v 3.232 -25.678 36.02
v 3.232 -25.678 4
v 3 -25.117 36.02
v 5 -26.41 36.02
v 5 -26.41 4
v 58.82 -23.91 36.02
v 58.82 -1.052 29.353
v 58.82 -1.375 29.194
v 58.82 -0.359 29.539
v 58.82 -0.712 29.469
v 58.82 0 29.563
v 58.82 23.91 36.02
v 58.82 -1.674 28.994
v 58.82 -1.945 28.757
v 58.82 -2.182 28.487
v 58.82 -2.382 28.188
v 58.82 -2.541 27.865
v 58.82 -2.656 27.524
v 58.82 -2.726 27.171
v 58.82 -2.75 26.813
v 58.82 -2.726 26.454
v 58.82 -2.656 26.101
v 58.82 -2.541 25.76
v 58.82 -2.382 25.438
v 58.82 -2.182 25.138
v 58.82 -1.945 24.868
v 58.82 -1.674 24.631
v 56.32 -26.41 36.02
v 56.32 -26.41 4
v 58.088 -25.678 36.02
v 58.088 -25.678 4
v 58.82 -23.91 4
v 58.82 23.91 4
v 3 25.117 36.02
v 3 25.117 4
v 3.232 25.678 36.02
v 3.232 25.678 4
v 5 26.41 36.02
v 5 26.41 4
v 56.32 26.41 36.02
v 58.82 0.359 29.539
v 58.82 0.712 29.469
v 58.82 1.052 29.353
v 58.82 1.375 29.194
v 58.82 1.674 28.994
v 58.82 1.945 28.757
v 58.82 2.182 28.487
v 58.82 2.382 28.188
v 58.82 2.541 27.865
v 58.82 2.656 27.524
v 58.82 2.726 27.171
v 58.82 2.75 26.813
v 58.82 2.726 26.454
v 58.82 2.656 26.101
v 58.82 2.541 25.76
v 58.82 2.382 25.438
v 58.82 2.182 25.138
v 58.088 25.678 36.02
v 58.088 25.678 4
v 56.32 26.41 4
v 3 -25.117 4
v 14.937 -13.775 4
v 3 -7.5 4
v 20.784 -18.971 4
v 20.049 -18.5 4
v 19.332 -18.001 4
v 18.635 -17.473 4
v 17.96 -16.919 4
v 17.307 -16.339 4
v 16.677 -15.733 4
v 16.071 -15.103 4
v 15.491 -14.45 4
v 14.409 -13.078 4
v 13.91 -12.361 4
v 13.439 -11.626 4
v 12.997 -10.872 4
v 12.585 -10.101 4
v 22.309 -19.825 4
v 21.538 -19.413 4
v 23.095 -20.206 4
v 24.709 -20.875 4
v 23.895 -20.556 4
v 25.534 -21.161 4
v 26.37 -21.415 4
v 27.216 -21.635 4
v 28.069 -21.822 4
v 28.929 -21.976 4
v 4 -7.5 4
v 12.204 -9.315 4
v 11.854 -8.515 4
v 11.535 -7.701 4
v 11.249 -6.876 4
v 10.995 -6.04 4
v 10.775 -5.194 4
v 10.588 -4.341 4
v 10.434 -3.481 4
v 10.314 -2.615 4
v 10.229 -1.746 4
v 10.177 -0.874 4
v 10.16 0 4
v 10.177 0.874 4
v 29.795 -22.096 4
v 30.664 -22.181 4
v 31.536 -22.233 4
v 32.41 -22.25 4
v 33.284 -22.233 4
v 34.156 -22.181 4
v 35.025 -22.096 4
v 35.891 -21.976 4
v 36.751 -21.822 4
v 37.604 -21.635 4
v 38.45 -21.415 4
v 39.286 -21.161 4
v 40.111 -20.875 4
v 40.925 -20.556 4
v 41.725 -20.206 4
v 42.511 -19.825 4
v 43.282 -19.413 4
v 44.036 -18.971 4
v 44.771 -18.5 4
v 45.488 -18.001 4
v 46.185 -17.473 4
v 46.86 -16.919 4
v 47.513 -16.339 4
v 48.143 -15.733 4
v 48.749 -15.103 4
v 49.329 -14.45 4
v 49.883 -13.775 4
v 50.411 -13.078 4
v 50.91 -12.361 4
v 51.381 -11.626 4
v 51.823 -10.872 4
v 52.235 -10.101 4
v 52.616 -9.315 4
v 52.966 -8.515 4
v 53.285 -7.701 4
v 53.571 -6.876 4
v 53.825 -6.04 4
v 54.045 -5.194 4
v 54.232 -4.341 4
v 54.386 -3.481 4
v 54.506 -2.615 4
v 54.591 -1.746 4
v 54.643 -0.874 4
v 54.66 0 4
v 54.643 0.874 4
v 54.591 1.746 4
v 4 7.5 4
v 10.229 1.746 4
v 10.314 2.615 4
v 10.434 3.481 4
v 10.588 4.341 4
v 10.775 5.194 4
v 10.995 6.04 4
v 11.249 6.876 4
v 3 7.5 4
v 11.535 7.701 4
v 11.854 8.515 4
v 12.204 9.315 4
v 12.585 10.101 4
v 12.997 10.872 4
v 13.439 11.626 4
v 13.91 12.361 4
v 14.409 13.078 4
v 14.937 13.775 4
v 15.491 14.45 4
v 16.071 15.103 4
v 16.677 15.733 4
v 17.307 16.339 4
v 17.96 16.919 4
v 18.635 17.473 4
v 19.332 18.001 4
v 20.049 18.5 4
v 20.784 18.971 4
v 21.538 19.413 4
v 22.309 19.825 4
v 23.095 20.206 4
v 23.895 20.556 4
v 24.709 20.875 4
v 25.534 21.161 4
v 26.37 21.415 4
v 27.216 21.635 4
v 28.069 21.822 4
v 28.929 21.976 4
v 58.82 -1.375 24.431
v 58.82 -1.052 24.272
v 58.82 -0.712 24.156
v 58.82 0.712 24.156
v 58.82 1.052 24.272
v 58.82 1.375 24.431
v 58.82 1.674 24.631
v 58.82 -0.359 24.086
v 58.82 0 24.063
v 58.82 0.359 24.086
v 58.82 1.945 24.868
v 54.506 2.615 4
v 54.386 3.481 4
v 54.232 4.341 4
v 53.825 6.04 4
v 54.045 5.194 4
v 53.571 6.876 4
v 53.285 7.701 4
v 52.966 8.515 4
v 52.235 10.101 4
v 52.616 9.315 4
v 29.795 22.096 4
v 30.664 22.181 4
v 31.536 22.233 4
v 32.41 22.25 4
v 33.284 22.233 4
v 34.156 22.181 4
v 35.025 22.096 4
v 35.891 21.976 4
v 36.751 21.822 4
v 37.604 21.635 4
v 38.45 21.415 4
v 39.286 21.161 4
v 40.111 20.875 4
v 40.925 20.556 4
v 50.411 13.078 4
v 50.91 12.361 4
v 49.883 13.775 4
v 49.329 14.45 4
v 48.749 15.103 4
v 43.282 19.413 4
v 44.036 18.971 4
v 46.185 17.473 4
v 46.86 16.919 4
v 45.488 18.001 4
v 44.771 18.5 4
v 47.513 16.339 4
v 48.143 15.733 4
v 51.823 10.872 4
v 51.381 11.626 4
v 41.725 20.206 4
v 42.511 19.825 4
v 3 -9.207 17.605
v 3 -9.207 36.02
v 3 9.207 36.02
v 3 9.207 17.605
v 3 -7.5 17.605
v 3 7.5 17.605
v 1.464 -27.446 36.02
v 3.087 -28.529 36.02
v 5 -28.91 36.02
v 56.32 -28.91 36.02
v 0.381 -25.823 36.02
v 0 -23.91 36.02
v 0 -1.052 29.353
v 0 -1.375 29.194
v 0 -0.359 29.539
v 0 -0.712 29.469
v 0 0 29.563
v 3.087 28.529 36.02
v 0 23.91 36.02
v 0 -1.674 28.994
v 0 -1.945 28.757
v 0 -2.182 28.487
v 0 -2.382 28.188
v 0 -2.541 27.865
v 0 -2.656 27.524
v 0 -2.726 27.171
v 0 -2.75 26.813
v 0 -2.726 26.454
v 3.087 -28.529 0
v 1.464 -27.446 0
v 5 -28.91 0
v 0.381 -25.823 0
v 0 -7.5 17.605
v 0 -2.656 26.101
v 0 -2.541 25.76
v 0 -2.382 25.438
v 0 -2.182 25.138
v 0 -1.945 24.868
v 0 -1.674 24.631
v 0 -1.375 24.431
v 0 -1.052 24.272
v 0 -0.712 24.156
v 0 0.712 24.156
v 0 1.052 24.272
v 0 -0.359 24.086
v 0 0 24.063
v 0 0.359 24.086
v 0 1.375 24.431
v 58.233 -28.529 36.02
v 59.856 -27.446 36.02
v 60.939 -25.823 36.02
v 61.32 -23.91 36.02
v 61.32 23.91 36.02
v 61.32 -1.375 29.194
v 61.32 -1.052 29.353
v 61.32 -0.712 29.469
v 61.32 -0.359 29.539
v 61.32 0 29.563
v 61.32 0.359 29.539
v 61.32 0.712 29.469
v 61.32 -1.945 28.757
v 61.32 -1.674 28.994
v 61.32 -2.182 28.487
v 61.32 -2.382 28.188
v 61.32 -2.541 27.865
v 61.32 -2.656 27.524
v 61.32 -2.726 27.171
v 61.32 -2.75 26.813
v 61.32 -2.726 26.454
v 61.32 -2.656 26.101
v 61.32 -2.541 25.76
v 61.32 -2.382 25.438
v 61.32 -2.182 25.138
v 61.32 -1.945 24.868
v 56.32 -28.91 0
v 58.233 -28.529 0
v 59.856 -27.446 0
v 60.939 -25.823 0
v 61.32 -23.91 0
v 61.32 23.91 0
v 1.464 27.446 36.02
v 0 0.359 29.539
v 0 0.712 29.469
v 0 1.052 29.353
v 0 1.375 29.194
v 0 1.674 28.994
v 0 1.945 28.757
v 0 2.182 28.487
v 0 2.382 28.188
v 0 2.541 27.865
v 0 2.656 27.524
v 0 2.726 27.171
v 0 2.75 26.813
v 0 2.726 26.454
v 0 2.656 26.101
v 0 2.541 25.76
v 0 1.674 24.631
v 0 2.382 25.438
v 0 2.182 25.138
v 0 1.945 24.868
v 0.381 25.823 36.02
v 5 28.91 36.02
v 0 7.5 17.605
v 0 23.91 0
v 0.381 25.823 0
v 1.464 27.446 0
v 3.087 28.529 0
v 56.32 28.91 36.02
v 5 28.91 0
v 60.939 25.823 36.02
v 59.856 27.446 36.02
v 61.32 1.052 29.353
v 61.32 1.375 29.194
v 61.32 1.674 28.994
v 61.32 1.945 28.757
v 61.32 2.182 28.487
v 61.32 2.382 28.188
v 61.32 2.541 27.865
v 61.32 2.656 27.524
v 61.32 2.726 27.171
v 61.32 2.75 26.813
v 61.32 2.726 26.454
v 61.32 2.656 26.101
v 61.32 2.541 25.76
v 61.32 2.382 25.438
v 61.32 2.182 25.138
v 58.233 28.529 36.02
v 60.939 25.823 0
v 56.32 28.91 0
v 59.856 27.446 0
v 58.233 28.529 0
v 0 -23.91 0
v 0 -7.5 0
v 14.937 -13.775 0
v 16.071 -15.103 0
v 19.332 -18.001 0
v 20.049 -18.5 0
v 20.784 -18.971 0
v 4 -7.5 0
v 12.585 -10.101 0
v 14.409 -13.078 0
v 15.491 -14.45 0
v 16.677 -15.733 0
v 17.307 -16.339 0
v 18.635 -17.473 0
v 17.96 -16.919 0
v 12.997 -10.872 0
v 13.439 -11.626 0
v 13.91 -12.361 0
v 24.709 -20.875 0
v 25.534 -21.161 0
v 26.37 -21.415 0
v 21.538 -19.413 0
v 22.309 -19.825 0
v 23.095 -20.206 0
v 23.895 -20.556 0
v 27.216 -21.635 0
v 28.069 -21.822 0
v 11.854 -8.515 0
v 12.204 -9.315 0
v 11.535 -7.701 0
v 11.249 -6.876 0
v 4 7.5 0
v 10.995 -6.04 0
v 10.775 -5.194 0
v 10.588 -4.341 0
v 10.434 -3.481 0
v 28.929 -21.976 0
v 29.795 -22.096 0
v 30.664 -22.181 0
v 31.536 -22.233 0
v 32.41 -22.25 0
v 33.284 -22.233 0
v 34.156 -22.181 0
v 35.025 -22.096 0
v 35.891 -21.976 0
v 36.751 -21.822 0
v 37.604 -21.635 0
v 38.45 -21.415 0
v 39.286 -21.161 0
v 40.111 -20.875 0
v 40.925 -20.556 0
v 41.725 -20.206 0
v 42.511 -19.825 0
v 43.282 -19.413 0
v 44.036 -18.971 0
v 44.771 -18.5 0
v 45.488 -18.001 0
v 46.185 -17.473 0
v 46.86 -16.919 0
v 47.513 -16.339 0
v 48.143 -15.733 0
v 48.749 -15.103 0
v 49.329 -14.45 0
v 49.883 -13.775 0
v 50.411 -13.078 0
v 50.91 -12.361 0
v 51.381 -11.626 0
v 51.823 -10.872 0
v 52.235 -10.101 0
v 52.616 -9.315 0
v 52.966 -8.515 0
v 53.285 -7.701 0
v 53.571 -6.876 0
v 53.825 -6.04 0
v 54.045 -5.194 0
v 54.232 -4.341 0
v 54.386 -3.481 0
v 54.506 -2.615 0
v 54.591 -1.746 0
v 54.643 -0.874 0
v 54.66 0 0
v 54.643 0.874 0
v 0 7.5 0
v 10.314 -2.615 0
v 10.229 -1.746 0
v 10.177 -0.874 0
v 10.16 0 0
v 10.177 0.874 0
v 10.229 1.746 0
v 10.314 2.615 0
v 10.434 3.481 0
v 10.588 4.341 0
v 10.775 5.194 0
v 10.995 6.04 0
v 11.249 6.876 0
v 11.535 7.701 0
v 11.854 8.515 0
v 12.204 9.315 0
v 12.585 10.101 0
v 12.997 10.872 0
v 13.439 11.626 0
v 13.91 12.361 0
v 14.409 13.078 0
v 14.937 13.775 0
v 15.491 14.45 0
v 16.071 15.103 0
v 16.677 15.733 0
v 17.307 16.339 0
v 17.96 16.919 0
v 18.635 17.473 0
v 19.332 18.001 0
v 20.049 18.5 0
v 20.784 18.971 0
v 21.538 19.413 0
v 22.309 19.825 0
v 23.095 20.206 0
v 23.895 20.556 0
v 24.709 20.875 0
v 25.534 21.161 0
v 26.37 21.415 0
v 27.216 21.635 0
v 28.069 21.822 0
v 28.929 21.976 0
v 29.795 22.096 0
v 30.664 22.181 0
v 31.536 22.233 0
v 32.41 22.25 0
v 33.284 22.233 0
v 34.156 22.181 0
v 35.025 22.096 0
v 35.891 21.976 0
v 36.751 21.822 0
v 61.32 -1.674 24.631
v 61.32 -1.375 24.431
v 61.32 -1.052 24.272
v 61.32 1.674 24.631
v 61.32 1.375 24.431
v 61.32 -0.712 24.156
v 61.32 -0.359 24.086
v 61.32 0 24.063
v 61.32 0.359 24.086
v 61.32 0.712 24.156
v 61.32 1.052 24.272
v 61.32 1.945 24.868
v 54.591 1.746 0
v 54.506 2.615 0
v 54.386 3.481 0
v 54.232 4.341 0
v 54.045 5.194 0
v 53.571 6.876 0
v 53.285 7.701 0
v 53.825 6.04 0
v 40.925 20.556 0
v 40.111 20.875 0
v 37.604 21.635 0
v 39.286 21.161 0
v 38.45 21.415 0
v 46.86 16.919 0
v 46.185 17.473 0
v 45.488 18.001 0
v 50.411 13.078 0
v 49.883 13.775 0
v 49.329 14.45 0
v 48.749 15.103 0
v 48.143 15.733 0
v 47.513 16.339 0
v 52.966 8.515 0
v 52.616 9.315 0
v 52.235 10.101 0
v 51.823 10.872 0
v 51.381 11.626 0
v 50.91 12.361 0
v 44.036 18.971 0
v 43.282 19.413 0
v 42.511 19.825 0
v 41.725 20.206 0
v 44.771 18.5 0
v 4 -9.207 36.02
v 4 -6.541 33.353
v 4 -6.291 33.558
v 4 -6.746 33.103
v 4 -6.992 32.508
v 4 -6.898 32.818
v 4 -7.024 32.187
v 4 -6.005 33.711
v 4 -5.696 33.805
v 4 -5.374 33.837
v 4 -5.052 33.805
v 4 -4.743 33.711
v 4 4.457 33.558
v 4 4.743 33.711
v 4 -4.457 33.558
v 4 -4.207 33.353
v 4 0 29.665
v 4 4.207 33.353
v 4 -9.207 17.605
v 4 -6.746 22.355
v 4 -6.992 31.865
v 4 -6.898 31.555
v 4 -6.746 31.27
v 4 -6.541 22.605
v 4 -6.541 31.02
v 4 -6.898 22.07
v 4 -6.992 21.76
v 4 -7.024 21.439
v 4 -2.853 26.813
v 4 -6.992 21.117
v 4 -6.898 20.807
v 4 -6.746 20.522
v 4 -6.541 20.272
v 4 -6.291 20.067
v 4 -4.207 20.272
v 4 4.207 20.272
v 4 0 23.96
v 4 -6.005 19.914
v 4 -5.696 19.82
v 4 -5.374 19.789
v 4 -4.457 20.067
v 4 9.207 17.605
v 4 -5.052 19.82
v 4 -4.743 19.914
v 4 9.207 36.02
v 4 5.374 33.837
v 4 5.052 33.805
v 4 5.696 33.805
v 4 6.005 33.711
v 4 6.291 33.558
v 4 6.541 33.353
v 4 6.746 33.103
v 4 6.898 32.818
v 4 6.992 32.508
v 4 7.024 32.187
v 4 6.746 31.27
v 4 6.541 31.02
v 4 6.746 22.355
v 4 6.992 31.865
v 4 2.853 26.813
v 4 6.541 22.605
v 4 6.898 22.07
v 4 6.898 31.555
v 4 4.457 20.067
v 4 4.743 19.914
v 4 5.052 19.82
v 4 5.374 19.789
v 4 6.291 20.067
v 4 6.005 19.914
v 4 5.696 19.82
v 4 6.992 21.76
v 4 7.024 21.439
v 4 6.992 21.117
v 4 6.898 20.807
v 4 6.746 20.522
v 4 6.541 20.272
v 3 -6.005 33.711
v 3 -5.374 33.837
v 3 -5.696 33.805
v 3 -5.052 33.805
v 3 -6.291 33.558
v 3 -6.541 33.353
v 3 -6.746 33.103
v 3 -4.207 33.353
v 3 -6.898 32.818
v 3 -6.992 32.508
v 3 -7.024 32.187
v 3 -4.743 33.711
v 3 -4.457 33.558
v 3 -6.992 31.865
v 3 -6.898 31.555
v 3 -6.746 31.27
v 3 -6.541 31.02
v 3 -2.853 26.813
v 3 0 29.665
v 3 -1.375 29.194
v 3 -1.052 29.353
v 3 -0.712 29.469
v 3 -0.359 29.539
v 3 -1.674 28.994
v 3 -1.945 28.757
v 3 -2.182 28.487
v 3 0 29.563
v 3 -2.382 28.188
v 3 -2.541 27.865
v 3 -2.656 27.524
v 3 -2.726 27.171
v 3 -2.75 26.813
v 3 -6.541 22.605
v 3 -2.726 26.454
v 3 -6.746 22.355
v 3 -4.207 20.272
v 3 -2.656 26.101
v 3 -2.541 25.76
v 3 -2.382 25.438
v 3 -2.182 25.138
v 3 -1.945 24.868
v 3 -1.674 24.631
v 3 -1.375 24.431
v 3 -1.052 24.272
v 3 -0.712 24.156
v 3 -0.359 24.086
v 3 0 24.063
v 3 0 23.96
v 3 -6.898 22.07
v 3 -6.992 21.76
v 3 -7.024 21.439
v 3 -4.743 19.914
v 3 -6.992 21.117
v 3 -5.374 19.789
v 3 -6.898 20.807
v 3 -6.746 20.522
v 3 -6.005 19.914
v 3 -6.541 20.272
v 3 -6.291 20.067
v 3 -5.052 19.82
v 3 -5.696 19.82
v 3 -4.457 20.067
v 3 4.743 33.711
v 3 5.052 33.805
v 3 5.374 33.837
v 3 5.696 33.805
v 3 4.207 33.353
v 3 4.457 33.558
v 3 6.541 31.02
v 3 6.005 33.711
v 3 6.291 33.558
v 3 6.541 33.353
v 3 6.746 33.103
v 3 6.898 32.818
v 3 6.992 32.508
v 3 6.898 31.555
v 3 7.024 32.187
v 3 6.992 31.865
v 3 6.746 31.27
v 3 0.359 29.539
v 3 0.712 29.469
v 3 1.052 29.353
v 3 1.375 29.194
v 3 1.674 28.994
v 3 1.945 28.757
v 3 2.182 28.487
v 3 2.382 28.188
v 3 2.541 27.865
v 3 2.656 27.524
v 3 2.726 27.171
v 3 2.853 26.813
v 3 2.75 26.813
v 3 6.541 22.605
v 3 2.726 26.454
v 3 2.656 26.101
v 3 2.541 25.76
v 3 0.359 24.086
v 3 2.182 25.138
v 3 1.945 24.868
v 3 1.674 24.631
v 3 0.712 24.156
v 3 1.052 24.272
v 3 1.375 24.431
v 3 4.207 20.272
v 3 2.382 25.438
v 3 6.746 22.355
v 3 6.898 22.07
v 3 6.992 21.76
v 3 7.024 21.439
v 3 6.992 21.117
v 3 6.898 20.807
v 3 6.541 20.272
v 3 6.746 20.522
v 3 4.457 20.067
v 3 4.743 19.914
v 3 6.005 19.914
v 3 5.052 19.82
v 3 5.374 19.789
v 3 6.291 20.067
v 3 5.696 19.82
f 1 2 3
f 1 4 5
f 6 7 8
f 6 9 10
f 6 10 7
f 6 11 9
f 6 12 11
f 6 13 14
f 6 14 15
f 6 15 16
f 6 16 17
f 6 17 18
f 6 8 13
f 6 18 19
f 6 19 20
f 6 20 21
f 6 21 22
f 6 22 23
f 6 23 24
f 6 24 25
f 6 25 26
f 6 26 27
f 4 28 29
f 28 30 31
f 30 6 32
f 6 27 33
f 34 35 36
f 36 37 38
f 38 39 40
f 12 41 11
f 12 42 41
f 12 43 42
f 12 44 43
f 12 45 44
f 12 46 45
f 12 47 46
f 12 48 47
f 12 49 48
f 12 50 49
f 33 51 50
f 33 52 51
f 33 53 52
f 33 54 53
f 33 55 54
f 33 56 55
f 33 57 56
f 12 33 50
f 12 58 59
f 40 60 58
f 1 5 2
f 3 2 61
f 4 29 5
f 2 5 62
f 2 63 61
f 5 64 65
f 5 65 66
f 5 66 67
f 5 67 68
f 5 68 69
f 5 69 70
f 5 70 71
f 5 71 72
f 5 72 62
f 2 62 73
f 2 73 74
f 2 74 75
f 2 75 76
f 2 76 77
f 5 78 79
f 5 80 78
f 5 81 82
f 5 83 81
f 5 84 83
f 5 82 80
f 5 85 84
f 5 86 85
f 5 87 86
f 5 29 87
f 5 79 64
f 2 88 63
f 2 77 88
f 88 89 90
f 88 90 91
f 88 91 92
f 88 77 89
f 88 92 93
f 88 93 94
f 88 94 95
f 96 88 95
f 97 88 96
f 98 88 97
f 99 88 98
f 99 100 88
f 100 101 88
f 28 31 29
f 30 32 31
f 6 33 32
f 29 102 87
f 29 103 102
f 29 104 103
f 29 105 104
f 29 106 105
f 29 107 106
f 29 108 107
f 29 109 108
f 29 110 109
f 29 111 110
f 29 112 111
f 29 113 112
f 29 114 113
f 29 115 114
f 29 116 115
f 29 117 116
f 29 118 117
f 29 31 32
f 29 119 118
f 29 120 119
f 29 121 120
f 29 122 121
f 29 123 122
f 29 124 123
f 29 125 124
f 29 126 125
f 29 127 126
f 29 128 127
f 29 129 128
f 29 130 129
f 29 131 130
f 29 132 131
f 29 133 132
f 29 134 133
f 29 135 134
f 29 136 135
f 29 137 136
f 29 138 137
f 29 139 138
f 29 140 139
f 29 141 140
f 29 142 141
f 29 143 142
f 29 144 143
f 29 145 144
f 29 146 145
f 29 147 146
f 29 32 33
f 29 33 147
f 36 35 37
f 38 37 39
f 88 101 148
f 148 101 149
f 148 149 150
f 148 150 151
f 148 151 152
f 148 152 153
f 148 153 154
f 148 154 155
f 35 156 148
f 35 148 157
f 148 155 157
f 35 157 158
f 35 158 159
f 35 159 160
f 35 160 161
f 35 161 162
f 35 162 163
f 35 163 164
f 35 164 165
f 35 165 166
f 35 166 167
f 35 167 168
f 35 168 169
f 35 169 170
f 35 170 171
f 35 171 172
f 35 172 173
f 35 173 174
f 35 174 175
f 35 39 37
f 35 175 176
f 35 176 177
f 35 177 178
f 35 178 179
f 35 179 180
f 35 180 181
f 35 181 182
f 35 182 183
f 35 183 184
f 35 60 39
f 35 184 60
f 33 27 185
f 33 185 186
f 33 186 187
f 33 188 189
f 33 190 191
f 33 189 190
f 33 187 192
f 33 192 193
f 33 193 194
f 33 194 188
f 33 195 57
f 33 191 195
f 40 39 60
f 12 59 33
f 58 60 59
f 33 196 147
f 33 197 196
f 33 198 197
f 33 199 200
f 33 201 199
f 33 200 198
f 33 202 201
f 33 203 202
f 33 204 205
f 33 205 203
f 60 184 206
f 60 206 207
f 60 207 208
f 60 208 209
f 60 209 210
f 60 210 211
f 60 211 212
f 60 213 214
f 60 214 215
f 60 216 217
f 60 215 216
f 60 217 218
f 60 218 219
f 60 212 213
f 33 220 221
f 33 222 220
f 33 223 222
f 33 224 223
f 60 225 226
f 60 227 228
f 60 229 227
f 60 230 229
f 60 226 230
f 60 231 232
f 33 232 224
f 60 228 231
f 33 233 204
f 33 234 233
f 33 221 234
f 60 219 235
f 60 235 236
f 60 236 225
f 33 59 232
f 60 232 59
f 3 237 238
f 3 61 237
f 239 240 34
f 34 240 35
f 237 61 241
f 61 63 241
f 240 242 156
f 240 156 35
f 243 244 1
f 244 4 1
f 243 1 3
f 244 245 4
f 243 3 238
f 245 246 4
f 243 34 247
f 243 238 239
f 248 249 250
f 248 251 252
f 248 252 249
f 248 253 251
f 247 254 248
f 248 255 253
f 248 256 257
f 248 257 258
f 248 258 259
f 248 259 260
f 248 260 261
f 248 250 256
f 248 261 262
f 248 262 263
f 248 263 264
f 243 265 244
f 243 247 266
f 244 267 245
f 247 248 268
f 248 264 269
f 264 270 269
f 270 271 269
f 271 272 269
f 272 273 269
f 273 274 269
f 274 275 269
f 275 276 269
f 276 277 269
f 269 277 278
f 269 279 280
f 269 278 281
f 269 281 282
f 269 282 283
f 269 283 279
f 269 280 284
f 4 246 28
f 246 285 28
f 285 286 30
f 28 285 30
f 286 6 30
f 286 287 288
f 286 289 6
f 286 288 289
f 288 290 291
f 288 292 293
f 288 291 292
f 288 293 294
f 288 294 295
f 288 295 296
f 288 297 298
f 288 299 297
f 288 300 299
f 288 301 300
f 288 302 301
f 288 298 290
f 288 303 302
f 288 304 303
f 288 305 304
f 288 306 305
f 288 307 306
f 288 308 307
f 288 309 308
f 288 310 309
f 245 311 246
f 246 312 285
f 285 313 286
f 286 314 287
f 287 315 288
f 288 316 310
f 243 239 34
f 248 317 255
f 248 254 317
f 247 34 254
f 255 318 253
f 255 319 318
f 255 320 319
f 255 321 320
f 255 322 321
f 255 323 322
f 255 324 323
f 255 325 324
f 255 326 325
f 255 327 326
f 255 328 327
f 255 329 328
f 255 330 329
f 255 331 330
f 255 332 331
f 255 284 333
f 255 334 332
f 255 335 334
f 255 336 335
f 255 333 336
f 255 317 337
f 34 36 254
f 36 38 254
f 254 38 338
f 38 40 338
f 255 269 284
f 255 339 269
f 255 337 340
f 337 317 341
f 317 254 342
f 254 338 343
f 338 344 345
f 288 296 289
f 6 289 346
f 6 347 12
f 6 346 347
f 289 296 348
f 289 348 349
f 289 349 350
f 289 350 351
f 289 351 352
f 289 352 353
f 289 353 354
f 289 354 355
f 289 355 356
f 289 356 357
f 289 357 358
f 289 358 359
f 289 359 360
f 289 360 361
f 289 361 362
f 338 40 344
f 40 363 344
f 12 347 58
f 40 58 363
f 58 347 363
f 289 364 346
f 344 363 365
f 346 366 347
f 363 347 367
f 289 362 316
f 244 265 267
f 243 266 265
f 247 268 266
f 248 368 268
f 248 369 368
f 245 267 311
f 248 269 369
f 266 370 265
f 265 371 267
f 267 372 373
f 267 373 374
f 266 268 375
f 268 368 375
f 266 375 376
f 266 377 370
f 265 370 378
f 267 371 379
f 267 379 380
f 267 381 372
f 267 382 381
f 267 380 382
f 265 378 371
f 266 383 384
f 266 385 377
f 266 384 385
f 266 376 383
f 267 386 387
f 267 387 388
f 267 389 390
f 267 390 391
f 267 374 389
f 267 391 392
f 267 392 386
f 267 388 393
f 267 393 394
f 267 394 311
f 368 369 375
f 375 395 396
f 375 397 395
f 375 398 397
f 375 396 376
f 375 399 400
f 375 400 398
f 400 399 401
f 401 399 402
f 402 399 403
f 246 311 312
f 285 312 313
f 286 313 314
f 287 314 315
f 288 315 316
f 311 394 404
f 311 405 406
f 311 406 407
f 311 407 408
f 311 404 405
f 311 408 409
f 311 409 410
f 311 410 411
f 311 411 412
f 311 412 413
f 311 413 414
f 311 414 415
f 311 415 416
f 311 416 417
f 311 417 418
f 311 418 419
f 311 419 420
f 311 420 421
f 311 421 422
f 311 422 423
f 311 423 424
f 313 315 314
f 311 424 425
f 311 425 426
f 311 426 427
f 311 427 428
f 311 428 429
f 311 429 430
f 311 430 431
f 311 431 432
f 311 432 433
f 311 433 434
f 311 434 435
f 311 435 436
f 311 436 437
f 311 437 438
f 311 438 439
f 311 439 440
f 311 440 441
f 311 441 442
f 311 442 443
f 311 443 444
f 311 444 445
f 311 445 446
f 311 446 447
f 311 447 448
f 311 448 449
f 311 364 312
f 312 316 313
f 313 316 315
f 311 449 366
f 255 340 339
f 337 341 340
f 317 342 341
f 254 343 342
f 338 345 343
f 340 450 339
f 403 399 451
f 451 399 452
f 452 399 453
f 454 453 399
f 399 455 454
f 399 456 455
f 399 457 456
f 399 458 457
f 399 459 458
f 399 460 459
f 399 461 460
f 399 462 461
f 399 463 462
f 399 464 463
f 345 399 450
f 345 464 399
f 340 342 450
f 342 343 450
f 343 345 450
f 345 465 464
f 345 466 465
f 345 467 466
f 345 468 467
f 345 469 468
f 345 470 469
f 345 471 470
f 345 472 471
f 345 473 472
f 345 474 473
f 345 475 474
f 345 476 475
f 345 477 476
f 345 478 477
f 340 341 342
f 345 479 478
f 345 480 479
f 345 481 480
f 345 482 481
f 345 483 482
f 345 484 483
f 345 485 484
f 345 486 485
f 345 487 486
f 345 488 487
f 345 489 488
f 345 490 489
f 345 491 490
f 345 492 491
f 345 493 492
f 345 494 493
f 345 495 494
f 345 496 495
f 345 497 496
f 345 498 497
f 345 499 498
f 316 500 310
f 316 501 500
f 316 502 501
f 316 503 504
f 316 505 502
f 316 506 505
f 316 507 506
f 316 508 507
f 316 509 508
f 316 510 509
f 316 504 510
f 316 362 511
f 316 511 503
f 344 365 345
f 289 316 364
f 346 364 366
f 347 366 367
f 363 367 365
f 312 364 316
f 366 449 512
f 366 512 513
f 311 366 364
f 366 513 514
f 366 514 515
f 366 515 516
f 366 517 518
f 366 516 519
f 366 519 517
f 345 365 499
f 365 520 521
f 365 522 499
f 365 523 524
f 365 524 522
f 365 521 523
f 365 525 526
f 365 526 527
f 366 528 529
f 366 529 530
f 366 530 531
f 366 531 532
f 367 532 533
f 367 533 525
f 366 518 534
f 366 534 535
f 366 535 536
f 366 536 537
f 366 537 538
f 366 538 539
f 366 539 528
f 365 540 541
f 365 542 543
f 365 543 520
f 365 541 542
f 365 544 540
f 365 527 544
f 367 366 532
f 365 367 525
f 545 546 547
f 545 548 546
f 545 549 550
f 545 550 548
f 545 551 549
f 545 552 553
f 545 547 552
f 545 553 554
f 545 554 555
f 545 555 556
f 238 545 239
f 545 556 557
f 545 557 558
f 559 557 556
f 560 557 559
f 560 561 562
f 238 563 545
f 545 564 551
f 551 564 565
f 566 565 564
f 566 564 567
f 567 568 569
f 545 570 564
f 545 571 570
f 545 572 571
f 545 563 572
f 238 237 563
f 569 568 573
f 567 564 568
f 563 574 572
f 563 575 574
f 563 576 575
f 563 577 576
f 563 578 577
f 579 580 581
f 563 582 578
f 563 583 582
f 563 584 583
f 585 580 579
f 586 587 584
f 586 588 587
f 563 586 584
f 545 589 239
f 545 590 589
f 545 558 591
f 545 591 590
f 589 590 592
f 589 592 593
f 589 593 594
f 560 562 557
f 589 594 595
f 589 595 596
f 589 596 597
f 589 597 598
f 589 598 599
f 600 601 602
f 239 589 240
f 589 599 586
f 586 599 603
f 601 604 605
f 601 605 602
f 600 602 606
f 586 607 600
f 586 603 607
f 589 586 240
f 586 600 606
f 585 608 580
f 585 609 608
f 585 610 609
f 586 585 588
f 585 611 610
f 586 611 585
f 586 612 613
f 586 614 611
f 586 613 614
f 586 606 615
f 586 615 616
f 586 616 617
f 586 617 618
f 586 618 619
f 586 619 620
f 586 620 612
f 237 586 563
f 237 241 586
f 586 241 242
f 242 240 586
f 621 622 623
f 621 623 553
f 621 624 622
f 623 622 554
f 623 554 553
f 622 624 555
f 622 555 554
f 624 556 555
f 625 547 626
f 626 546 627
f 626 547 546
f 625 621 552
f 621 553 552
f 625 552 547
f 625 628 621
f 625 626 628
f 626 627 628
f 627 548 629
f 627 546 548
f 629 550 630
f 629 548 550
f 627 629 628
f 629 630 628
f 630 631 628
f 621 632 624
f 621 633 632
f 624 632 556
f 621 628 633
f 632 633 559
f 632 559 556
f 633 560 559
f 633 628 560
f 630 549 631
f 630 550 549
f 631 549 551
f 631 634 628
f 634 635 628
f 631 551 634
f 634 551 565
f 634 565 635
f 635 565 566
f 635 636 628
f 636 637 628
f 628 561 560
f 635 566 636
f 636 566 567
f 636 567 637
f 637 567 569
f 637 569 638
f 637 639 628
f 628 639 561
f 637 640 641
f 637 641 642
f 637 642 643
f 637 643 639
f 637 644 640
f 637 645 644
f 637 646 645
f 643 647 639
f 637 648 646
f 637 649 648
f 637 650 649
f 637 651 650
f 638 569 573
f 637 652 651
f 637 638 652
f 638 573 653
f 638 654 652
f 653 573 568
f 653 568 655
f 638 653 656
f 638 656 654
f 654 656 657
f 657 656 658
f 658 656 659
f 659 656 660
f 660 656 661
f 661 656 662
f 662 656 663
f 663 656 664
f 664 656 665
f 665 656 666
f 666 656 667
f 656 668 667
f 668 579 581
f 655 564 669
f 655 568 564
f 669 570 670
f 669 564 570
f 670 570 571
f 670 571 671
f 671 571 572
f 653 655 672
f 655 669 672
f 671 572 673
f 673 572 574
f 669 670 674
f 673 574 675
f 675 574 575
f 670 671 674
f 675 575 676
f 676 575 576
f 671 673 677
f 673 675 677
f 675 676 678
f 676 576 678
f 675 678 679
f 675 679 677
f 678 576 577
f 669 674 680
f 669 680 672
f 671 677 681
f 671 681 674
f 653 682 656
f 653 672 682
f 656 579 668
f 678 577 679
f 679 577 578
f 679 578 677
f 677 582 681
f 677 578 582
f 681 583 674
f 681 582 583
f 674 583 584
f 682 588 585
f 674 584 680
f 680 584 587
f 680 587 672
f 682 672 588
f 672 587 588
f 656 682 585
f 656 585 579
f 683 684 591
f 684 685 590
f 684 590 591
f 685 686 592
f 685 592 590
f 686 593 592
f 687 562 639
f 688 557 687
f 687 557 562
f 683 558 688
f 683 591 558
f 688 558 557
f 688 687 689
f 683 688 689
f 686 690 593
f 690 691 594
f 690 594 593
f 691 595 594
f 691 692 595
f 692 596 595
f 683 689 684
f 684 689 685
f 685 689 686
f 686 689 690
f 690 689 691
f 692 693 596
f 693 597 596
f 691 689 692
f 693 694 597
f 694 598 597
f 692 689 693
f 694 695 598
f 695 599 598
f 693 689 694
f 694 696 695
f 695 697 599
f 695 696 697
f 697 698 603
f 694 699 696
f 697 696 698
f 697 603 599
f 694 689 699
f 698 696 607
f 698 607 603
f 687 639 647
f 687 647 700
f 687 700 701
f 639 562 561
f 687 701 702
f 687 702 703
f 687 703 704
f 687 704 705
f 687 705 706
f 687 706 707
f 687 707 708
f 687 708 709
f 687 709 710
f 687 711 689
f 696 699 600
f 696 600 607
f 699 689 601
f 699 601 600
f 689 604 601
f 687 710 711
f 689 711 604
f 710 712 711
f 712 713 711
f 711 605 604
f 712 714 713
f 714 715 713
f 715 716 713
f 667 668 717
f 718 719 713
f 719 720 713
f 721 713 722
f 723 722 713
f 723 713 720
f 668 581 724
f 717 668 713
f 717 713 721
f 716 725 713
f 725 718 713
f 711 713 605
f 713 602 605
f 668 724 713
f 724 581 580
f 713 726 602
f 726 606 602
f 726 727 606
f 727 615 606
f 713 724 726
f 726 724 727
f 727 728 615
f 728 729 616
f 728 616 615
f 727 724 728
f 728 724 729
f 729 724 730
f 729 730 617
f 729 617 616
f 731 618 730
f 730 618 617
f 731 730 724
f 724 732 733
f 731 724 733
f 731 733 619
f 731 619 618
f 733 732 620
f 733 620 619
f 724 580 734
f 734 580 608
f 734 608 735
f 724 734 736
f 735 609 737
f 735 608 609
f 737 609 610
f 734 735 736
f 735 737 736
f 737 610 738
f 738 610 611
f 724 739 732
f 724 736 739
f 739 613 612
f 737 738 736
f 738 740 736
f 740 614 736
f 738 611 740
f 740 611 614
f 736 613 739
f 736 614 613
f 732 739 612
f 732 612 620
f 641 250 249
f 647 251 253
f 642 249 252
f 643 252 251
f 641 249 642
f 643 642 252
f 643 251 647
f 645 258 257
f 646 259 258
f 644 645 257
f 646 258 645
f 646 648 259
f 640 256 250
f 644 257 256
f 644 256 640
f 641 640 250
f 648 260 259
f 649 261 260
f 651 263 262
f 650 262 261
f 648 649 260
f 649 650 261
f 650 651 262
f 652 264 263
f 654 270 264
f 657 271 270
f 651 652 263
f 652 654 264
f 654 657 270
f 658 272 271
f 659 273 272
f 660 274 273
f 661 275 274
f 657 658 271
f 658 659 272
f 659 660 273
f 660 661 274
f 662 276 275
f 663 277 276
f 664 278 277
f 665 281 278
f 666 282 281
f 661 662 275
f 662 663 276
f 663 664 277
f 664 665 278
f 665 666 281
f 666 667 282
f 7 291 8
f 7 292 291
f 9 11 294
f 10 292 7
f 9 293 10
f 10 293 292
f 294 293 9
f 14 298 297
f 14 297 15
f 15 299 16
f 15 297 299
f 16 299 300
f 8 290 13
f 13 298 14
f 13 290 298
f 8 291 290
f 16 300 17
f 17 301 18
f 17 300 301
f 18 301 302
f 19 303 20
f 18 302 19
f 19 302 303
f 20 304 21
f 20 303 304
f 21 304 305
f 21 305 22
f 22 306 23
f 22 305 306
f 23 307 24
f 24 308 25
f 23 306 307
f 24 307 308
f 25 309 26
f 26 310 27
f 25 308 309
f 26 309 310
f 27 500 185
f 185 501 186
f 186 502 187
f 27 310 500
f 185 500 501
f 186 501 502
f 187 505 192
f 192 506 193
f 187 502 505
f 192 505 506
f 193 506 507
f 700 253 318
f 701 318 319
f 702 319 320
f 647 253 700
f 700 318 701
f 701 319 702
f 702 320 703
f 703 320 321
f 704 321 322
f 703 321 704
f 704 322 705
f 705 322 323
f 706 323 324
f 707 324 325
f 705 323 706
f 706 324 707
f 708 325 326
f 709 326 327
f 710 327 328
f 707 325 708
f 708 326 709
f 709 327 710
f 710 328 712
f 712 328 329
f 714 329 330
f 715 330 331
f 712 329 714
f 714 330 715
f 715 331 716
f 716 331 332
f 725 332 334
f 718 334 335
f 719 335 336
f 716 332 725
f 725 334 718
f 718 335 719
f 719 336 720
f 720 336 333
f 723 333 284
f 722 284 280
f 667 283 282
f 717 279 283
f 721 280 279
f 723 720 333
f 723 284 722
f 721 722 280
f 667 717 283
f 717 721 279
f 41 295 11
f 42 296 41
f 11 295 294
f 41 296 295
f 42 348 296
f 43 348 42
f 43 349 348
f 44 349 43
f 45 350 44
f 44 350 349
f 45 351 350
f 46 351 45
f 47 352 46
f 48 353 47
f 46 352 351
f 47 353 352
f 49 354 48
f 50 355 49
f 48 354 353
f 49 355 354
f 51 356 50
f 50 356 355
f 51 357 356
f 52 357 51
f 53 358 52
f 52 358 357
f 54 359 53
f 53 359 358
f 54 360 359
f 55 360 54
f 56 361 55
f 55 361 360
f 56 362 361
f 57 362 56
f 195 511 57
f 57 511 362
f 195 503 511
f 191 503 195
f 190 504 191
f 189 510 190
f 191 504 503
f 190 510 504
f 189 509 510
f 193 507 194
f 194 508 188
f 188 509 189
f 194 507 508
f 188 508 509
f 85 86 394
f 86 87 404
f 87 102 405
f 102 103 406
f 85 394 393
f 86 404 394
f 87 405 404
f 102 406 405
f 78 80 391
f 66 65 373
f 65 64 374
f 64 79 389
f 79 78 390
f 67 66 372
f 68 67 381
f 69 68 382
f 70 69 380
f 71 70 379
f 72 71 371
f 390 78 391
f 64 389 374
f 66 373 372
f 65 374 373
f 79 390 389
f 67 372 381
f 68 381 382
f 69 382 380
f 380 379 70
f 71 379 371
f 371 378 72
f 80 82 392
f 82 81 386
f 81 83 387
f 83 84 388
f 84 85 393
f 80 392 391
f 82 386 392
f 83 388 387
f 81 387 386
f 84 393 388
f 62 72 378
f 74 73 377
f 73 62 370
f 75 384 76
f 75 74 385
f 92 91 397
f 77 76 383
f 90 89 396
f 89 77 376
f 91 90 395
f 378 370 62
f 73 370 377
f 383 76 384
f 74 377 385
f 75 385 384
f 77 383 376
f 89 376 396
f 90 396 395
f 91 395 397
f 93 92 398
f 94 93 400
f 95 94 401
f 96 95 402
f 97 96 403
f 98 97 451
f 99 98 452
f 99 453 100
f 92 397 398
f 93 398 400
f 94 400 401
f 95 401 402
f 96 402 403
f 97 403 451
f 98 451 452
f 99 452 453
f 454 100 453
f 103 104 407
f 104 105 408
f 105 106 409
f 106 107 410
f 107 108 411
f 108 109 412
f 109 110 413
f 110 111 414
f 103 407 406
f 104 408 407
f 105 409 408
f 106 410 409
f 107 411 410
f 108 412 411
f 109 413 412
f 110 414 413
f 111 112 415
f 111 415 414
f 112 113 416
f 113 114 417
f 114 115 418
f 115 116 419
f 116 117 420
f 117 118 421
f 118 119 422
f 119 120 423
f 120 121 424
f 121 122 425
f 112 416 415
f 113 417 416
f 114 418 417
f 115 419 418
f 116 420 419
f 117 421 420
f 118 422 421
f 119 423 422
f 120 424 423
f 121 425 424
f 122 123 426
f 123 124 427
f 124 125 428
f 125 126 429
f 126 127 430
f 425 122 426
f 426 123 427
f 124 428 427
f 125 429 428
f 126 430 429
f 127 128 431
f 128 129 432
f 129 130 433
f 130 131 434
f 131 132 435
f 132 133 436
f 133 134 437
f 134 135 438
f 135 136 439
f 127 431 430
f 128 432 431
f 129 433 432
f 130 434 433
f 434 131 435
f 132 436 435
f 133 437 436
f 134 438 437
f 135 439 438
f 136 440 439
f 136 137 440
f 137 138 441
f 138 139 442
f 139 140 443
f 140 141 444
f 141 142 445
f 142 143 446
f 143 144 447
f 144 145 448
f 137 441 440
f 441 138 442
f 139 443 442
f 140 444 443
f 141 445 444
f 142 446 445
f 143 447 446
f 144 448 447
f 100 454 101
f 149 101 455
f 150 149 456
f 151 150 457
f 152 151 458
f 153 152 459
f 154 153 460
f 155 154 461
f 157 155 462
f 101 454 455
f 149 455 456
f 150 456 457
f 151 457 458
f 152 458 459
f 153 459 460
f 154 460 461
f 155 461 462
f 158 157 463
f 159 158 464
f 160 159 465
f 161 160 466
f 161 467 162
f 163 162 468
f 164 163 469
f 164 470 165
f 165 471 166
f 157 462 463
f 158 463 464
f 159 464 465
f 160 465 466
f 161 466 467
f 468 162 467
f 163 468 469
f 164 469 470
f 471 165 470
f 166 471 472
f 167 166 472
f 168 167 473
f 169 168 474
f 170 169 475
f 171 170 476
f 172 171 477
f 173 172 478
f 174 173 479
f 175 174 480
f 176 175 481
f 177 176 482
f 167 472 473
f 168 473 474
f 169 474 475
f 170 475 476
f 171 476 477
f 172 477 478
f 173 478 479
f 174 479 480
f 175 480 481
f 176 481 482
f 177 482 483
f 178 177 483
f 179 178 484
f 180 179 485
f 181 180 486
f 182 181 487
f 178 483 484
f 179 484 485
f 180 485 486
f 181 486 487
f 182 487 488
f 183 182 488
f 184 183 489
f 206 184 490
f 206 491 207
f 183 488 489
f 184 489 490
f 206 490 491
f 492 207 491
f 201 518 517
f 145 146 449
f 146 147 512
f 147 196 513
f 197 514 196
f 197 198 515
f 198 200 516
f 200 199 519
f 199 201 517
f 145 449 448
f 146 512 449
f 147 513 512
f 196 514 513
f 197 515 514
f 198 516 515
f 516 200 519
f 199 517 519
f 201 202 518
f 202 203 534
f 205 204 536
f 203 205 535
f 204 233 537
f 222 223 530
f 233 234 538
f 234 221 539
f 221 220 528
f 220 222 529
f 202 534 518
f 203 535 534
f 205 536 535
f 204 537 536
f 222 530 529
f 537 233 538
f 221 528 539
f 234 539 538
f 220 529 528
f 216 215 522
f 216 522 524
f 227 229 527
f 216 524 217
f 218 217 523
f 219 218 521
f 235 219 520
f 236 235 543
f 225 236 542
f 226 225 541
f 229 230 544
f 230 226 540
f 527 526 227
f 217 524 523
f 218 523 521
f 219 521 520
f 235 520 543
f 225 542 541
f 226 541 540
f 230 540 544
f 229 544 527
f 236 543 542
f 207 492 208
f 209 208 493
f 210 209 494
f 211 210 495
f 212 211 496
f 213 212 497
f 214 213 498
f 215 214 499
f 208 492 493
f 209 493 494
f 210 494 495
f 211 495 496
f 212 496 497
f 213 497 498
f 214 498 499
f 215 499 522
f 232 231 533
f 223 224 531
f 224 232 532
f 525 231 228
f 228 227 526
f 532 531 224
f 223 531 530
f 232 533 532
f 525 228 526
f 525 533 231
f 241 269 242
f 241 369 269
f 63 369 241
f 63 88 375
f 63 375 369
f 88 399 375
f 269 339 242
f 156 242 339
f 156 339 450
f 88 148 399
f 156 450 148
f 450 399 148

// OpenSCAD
// file: horn_mount.scad
// Mount for the servo's cross horn (the X-shaped arm that comes with the servo).
//
// The horn sits in an X-shaped recess so it can't twist, with a 5.5 mm hole
// in the middle for the horn's hub and the center screw. Small pilot holes
// line up with the holes in the horn's arms, so tiny screws through the horn
// hold the part on.
//
// Fit it once with HornMountTest.stl. If the horn doesn't fit, measure it and
// change the sizes below; every part that includes this file updates.

// ── Horn sizes (mm) ────────────────────────────────────────────────────────
horn_reach    = 9;      // center to the tip of one arm
horn_root_w   = 3.8;    // arm width at the hub
horn_tip_w    = 2.8;    // arm width at the tip
horn_t        = 1.6;    // arm thickness = recess depth
horn_clear    = 0.25;   // gap around the horn
horn_angle    = 45;     // turn of the X (45 = arms point diagonally)
hub_hole_d    = 5.5;    // hole for the horn's hub and the center screw
horn_holes    = [5, 7.5];  // pilot holes: distance from the center along each arm
horn_pilot_d  = 1.0;    // pilot for the horn's small screws
horn_pilot_depth = 5;

// How far the recess reaches along x or y from the center (arms at 45 deg)
horn_extent = (horn_reach + horn_clear) * cos(45) + (horn_tip_w / 2 + horn_clear) * sin(45);

// 2D X shape, centered
module horn_x_2d() {
    rotate(horn_angle)
        for (a = [0, 90, 180, 270]) rotate(a)
            hull() {
                circle(d = horn_root_w + 2 * horn_clear, $fn = 32);
                translate([horn_reach - horn_tip_w / 2, 0])
                    circle(d = horn_tip_w + 2 * horn_clear, $fn = 32);
            }
}

// Cut-out for the horn. The mounting face is at z = 0, material is above it
// (+z). The hub hole runs up hub_len.
module horn_mount_cut(hub_len) {
    translate([0, 0, -1]) linear_extrude(horn_t + 1) horn_x_2d();
    translate([0, 0, -1]) cylinder(d = hub_hole_d, h = hub_len + 1, $fn = 48);
    rotate(horn_angle)
        for (a = [0, 90, 180, 270], r = horn_holes) rotate(a)
            translate([r, 0, -1]) cylinder(d = horn_pilot_d, h = horn_t + horn_pilot_depth + 1, $fn = 16);
}
// main file
// Fixed head with an M5Stack Dial as the robot's face.
//
// Replaces Head, Hat and Neck, and the head (pitch) servo. The head sits
// directly on the neck (yaw) servo. The servo's cross horn lies inside the
// head in an X-shaped pocket in a square pad on top of the floor (like
// HornMountTest; see horn_mount.scad for the horn shape), so the head can't
// twist. The horn's hub points down into a 5.5 mm hole through the floor,
// and the servo shaft comes up into it from below.
//
// The head is a box with an open back. The Dial goes in from the back, screen
// first: its 45 mm front cap rests against the inside of the front plate and
// the screen shows through the 44.5 mm hole. The orange rings sit inside the
// box with 1 mm of air all around, so they can turn. The Dial goes in with its
// USB-C port facing down, and the plug goes up into it through a slot in the
// floor under the front half of the Dial. The slot also opens out the bottom
// of the front plate. The horn sits behind it, at the back of the floor.
//
// Assembly: put the cross horn into the pocket, hub pointing down. Center the
// neck servo, press the head onto it facing forward, and fasten the center
// screw through the hole in the top of the head. Then slide the Dial in from
// the back and plug in the cables.
//
// Head frame: +x front, +y robot width, +z up. The front face is at x = 0
// and the neck servo shaft axis is at x = shaft_x, y = 0. The underside of
// the floor is at z = 0.
//
// Output is in print orientation: face down. No supports needed.

include <horn_mount.scad>

// ── Dial (from M5Stack's 3D model) ─────────────────────────────────────────
bore_r          = 22.25;  // screen hole in the front plate: 44.5 mm
ring_r          = 25.41;  // largest orange ring
ring_air        = 1;      // air around the orange rings
dial_len        = 30.32;  // front of the screen cap to the back of the Dial

// ── Head box ───────────────────────────────────────────────────────────────
front_t         = 4;      // front plate thickness
wall            = 2.5;
floor_t         = 3;
head_r          = 5;      // corner radius (seen from the front)
back_room       = 1.7;    // extra depth behind the Dial

// ── Horn mount on the floor ────────────────────────────────────────────────
horn_wall       = 1.5;    // pad material around the horn pocket
horn_pocket     = 1;      // height of the square pad = depth of the horn pocket
horn_stack      = 3.2;    // horn plus center screw head, above the floor
stack_air       = 0.8;    // air between the screw head and the Dial

// ── USB-C slot in the floor ────────────────────────────────────────────────
usb_w           = 15;     // slot width (across the robot)

// ── Derived ────────────────────────────────────────────────────────────────
head_bottom = 0;                                              // underside of the floor
dial_zc     = floor_t + horn_stack + stack_air + ring_r;     // Dial center height
head_w      = 2 * (ring_r + ring_air + wall);
head_h      = dial_zc + ring_r + ring_air + wall;
head_d      = front_t + dial_len + back_room;
head_top    = head_bottom + head_h;
horn_pad    = horn_extent + horn_wall;
shaft_x     = -head_d + horn_pad;                             // horn pad ends at the back of the head
usb_slot_x  = shaft_x + horn_pad;                             // USB slot runs from here to the front

// front view (y, z) rounded rectangle
module head_outline(inset = 0) {
    translate([-head_w / 2 + inset, head_bottom + inset])
        offset(r = max(head_r - inset, 0.01))
            offset(delta = -max(head_r - inset, 0.01))
                square([head_w - 2 * inset, head_h - 2 * inset]);
}

// extrude a front-view (y, z) shape along x, from x0 to x1
module along_x(x0, x1) {
    translate([x0, 0, 0]) rotate([90, 0, 90]) linear_extrude(x1 - x0) children();
}

module head_box() {
    difference() {
        along_x(-head_d, 0) head_outline();
        // hollow inside, open at the back; floor and front plate stay solid
        difference() {
            along_x(-head_d - 1, -front_t) head_outline(wall);
            translate([-head_d - 2, -head_w, head_bottom - 1])
                cube([head_d + 2, 2 * head_w, floor_t + 1]);
        }
    }
}

module screen_hole() {
    along_x(-front_t - 1, 1) translate([0, dial_zc]) circle(r = bore_r, $fn = 160);
}

module usb_slot() {
    // through the floor under the front half of the Dial, from the horn pad
    // to the front, and out the bottom of the front plate
    translate([usb_slot_x, -usb_w / 2, -1])
        cube([-usb_slot_x + 1, usb_w, floor_t + 2]);
}

// square pad on top of the floor, around the horn
module horn_rim() {
    translate([shaft_x - horn_pad, -horn_pad, head_bottom + floor_t - 0.01])
        cube([2 * horn_pad, 2 * horn_pad, horn_pocket + 0.01]);
}

module servo_mount() {
    translate([shaft_x, 0, head_bottom]) {
        // horn pocket in the pad, down to the top of the floor
        translate([0, 0, floor_t]) linear_extrude(horn_pocket + 1) horn_x_2d();
        // hub hole through the floor, and screwdriver access through the top
        translate([0, 0, -1]) cylinder(d = hub_hole_d, h = head_h + 2, $fn = 48);
    }
}

module head_m5dial() {
    difference() {
        union() {
            head_box();
            horn_rim();
        }
        screen_hole();
        usb_slot();
        servo_mount();
    }
}

// Print orientation: front face down on the bed.
rotate([0, 90, 0]) head_m5dial();
